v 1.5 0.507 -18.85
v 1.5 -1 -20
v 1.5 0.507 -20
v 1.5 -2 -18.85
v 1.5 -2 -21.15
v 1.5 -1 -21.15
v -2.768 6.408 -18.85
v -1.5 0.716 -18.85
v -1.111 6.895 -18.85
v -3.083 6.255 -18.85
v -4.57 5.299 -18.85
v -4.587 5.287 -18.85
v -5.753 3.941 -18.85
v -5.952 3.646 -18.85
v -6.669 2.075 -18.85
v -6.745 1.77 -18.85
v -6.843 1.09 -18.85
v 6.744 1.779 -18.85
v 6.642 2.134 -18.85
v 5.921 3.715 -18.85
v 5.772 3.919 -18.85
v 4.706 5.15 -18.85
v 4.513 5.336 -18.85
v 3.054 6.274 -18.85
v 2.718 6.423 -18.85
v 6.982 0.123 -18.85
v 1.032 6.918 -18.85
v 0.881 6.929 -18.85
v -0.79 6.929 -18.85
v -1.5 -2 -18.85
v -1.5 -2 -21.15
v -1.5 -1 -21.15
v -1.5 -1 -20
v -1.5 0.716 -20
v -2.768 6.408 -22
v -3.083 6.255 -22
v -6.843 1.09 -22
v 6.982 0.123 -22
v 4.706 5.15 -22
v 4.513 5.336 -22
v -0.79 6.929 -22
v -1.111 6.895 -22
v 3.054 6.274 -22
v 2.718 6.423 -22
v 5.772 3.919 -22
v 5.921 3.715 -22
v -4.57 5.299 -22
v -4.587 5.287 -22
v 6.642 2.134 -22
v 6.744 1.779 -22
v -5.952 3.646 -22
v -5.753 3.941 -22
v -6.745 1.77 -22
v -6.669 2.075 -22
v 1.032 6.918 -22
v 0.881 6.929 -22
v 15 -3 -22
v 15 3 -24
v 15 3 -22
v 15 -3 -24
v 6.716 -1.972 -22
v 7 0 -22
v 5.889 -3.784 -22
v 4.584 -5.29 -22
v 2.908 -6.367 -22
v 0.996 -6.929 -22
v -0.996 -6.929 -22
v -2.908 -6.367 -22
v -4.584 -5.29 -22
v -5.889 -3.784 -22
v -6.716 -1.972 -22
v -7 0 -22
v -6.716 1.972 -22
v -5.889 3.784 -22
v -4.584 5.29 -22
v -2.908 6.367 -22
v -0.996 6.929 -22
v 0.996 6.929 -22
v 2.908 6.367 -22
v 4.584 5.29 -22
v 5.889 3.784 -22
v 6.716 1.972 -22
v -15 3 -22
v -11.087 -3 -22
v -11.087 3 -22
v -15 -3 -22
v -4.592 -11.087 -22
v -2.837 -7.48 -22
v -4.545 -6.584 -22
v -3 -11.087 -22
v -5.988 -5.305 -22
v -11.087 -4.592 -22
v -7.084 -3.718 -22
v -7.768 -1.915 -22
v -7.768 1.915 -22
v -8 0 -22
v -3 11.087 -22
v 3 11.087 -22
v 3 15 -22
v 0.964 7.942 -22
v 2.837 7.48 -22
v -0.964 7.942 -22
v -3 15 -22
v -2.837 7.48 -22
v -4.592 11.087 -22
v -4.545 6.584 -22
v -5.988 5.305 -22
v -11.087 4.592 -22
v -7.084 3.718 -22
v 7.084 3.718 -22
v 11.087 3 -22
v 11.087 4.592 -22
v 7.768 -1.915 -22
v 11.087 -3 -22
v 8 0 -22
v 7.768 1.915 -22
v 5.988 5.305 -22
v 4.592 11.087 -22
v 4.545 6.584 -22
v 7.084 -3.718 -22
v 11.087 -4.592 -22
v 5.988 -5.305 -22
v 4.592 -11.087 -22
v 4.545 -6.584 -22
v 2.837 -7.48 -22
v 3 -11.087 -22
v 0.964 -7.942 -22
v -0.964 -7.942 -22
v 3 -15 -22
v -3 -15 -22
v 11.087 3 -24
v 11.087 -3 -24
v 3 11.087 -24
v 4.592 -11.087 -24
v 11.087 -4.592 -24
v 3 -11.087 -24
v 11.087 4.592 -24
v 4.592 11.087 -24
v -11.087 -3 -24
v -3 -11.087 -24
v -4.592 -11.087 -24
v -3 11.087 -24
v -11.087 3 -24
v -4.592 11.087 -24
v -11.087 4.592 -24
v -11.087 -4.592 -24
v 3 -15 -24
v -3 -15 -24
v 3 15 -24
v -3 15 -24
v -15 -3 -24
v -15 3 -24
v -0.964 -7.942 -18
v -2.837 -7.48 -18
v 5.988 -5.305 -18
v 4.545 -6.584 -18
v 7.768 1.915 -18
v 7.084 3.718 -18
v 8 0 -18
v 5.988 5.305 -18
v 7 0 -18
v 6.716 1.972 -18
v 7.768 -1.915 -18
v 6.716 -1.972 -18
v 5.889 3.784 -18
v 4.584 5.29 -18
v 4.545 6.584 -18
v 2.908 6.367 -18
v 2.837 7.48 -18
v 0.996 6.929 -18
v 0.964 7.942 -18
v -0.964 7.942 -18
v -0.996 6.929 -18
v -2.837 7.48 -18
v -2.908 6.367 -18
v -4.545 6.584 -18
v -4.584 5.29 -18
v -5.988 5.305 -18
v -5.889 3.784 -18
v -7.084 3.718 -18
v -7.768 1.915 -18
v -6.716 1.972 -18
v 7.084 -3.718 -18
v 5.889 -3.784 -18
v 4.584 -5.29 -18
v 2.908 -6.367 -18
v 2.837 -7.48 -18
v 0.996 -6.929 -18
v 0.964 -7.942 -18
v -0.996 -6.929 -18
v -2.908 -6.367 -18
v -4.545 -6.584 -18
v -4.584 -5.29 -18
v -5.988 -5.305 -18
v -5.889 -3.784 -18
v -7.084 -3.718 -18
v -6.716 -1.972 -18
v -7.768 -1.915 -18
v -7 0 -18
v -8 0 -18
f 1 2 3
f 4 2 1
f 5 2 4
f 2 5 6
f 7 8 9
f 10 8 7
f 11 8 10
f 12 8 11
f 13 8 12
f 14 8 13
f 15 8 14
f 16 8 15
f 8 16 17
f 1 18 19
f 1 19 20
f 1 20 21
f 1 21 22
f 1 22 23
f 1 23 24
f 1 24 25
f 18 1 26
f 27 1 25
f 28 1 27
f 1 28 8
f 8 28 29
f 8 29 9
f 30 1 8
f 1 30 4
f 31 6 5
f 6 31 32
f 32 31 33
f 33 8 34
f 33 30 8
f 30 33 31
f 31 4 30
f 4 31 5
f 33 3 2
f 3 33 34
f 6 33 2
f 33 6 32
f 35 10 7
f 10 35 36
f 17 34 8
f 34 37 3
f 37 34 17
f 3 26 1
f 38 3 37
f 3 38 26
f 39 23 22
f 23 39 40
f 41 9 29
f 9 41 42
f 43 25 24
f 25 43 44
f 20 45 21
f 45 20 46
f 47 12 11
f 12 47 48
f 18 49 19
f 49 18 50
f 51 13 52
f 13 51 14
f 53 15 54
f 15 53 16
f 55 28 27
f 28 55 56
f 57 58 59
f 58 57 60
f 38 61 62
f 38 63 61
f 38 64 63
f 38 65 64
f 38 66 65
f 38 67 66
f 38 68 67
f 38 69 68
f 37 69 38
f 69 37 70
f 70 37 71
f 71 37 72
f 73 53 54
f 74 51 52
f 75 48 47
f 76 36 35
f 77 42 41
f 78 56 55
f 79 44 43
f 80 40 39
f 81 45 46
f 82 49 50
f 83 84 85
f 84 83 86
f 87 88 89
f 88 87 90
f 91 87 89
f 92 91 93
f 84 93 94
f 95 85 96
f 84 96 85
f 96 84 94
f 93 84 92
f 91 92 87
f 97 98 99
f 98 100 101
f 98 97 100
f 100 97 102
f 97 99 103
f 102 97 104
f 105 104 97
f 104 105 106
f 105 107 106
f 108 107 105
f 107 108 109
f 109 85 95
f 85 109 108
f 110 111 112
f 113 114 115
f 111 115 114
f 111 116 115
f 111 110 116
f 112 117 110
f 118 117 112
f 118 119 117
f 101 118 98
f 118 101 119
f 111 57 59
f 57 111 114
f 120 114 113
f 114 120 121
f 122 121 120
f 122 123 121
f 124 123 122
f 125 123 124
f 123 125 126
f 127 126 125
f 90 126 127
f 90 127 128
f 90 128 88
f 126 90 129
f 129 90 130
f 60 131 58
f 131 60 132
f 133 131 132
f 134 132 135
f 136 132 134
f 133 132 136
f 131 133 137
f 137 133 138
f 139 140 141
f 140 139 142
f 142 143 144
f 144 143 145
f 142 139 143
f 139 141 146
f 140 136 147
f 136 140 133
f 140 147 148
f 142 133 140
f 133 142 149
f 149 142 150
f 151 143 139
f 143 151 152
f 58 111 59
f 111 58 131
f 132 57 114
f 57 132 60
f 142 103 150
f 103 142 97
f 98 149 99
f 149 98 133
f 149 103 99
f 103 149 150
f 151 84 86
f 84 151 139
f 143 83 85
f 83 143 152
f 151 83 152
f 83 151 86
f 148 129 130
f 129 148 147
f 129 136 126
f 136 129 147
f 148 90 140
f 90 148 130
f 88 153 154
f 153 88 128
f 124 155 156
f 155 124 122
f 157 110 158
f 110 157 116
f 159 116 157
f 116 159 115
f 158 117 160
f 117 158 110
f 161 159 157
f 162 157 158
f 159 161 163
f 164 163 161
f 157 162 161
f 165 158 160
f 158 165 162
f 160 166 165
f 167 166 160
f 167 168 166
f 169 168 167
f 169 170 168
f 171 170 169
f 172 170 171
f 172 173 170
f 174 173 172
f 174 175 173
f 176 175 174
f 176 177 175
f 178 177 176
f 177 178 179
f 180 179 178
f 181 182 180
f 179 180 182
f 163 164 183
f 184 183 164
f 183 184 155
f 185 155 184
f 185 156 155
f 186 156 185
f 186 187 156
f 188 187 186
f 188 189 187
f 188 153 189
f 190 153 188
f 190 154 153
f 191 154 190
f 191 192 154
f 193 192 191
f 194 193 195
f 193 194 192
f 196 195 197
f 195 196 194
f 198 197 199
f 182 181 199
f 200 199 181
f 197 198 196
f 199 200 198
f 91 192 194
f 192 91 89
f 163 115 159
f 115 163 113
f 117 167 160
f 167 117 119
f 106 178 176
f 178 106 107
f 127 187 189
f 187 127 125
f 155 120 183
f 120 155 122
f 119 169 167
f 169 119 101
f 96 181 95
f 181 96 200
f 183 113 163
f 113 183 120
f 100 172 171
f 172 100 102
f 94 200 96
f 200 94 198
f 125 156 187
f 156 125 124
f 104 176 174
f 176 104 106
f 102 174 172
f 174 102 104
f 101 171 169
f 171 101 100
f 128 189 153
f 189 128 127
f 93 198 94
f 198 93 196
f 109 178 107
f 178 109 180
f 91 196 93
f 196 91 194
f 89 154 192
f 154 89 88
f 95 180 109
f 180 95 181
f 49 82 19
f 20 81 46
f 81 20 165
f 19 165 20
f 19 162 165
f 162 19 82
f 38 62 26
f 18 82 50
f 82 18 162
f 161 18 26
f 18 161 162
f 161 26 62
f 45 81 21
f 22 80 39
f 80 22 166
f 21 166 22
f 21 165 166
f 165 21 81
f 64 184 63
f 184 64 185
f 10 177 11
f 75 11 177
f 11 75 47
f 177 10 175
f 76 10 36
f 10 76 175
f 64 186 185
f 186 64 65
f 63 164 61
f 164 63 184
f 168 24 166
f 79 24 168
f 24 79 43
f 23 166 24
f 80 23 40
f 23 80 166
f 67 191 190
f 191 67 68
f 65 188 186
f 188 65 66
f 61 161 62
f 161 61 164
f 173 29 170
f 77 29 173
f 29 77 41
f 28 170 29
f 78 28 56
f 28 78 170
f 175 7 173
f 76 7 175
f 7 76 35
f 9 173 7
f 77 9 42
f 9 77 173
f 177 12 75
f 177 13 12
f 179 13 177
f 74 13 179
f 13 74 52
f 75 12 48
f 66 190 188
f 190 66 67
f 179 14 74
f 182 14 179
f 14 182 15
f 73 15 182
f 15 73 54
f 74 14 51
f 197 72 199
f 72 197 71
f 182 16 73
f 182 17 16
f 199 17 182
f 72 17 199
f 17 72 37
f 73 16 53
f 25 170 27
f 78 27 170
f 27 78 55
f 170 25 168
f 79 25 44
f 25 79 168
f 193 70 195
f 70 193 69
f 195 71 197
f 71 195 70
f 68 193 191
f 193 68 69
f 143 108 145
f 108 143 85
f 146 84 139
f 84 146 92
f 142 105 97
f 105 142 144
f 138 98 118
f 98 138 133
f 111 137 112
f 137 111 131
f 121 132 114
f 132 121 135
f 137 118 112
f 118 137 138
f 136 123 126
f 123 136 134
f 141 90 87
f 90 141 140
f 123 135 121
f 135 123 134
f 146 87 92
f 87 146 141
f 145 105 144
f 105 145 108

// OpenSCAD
spring_idle = 25;
radius = 15;
module rotated_cube(angle, magic_angle, cube_side, cube_height){
    color("white")
    rotate([magic_angle, 0, angle])
    translate([0, cube_side, 0])
    cube([cube_side*2, cube_side, cube_height], center = true);
}

module hook(){
    color("red")
    union(){
        inner_rad = 7;
        
        translate([0,0,-2.85])
        
        linear_extrude(4){
            polygon([for(i = [1:10:180]) [inner_rad*cos(i), inner_rad*sin(i)]]);
        }
        
        difference(){
            translate([0, 0, 0])
            cube([3,4,2.3], center = true);
            translate([0,0,-2])
            rotate([0, 0, 0])
            cube([5,2,4], center = true);
        }
    }
}
//  Horn
color("#222222")
union(){
    
        translate([0, 0, -20])
        union(){
            translate([0, 0, 0])
            hook();
            

            translate([0, 0, -2])
            rotate([180, 0, 360/16])
            linear_extrude(2){
                polygon([for(i = [0: 360/8: 360]) [12*cos(i), 12*sin(i)]]);
            }    
            
            for(i = [0:1:4]){
                    rotate([0, 0, 90*i])
                    translate([12+1, 0, -3])
                    cube([4, 6, 2], center = true);
            }
            
            difference(){
                    cylinder(h = 4, r = 8, center = true);
                    cylinder(h = 5, r = 7, center = true);
            }
        }
        
}
